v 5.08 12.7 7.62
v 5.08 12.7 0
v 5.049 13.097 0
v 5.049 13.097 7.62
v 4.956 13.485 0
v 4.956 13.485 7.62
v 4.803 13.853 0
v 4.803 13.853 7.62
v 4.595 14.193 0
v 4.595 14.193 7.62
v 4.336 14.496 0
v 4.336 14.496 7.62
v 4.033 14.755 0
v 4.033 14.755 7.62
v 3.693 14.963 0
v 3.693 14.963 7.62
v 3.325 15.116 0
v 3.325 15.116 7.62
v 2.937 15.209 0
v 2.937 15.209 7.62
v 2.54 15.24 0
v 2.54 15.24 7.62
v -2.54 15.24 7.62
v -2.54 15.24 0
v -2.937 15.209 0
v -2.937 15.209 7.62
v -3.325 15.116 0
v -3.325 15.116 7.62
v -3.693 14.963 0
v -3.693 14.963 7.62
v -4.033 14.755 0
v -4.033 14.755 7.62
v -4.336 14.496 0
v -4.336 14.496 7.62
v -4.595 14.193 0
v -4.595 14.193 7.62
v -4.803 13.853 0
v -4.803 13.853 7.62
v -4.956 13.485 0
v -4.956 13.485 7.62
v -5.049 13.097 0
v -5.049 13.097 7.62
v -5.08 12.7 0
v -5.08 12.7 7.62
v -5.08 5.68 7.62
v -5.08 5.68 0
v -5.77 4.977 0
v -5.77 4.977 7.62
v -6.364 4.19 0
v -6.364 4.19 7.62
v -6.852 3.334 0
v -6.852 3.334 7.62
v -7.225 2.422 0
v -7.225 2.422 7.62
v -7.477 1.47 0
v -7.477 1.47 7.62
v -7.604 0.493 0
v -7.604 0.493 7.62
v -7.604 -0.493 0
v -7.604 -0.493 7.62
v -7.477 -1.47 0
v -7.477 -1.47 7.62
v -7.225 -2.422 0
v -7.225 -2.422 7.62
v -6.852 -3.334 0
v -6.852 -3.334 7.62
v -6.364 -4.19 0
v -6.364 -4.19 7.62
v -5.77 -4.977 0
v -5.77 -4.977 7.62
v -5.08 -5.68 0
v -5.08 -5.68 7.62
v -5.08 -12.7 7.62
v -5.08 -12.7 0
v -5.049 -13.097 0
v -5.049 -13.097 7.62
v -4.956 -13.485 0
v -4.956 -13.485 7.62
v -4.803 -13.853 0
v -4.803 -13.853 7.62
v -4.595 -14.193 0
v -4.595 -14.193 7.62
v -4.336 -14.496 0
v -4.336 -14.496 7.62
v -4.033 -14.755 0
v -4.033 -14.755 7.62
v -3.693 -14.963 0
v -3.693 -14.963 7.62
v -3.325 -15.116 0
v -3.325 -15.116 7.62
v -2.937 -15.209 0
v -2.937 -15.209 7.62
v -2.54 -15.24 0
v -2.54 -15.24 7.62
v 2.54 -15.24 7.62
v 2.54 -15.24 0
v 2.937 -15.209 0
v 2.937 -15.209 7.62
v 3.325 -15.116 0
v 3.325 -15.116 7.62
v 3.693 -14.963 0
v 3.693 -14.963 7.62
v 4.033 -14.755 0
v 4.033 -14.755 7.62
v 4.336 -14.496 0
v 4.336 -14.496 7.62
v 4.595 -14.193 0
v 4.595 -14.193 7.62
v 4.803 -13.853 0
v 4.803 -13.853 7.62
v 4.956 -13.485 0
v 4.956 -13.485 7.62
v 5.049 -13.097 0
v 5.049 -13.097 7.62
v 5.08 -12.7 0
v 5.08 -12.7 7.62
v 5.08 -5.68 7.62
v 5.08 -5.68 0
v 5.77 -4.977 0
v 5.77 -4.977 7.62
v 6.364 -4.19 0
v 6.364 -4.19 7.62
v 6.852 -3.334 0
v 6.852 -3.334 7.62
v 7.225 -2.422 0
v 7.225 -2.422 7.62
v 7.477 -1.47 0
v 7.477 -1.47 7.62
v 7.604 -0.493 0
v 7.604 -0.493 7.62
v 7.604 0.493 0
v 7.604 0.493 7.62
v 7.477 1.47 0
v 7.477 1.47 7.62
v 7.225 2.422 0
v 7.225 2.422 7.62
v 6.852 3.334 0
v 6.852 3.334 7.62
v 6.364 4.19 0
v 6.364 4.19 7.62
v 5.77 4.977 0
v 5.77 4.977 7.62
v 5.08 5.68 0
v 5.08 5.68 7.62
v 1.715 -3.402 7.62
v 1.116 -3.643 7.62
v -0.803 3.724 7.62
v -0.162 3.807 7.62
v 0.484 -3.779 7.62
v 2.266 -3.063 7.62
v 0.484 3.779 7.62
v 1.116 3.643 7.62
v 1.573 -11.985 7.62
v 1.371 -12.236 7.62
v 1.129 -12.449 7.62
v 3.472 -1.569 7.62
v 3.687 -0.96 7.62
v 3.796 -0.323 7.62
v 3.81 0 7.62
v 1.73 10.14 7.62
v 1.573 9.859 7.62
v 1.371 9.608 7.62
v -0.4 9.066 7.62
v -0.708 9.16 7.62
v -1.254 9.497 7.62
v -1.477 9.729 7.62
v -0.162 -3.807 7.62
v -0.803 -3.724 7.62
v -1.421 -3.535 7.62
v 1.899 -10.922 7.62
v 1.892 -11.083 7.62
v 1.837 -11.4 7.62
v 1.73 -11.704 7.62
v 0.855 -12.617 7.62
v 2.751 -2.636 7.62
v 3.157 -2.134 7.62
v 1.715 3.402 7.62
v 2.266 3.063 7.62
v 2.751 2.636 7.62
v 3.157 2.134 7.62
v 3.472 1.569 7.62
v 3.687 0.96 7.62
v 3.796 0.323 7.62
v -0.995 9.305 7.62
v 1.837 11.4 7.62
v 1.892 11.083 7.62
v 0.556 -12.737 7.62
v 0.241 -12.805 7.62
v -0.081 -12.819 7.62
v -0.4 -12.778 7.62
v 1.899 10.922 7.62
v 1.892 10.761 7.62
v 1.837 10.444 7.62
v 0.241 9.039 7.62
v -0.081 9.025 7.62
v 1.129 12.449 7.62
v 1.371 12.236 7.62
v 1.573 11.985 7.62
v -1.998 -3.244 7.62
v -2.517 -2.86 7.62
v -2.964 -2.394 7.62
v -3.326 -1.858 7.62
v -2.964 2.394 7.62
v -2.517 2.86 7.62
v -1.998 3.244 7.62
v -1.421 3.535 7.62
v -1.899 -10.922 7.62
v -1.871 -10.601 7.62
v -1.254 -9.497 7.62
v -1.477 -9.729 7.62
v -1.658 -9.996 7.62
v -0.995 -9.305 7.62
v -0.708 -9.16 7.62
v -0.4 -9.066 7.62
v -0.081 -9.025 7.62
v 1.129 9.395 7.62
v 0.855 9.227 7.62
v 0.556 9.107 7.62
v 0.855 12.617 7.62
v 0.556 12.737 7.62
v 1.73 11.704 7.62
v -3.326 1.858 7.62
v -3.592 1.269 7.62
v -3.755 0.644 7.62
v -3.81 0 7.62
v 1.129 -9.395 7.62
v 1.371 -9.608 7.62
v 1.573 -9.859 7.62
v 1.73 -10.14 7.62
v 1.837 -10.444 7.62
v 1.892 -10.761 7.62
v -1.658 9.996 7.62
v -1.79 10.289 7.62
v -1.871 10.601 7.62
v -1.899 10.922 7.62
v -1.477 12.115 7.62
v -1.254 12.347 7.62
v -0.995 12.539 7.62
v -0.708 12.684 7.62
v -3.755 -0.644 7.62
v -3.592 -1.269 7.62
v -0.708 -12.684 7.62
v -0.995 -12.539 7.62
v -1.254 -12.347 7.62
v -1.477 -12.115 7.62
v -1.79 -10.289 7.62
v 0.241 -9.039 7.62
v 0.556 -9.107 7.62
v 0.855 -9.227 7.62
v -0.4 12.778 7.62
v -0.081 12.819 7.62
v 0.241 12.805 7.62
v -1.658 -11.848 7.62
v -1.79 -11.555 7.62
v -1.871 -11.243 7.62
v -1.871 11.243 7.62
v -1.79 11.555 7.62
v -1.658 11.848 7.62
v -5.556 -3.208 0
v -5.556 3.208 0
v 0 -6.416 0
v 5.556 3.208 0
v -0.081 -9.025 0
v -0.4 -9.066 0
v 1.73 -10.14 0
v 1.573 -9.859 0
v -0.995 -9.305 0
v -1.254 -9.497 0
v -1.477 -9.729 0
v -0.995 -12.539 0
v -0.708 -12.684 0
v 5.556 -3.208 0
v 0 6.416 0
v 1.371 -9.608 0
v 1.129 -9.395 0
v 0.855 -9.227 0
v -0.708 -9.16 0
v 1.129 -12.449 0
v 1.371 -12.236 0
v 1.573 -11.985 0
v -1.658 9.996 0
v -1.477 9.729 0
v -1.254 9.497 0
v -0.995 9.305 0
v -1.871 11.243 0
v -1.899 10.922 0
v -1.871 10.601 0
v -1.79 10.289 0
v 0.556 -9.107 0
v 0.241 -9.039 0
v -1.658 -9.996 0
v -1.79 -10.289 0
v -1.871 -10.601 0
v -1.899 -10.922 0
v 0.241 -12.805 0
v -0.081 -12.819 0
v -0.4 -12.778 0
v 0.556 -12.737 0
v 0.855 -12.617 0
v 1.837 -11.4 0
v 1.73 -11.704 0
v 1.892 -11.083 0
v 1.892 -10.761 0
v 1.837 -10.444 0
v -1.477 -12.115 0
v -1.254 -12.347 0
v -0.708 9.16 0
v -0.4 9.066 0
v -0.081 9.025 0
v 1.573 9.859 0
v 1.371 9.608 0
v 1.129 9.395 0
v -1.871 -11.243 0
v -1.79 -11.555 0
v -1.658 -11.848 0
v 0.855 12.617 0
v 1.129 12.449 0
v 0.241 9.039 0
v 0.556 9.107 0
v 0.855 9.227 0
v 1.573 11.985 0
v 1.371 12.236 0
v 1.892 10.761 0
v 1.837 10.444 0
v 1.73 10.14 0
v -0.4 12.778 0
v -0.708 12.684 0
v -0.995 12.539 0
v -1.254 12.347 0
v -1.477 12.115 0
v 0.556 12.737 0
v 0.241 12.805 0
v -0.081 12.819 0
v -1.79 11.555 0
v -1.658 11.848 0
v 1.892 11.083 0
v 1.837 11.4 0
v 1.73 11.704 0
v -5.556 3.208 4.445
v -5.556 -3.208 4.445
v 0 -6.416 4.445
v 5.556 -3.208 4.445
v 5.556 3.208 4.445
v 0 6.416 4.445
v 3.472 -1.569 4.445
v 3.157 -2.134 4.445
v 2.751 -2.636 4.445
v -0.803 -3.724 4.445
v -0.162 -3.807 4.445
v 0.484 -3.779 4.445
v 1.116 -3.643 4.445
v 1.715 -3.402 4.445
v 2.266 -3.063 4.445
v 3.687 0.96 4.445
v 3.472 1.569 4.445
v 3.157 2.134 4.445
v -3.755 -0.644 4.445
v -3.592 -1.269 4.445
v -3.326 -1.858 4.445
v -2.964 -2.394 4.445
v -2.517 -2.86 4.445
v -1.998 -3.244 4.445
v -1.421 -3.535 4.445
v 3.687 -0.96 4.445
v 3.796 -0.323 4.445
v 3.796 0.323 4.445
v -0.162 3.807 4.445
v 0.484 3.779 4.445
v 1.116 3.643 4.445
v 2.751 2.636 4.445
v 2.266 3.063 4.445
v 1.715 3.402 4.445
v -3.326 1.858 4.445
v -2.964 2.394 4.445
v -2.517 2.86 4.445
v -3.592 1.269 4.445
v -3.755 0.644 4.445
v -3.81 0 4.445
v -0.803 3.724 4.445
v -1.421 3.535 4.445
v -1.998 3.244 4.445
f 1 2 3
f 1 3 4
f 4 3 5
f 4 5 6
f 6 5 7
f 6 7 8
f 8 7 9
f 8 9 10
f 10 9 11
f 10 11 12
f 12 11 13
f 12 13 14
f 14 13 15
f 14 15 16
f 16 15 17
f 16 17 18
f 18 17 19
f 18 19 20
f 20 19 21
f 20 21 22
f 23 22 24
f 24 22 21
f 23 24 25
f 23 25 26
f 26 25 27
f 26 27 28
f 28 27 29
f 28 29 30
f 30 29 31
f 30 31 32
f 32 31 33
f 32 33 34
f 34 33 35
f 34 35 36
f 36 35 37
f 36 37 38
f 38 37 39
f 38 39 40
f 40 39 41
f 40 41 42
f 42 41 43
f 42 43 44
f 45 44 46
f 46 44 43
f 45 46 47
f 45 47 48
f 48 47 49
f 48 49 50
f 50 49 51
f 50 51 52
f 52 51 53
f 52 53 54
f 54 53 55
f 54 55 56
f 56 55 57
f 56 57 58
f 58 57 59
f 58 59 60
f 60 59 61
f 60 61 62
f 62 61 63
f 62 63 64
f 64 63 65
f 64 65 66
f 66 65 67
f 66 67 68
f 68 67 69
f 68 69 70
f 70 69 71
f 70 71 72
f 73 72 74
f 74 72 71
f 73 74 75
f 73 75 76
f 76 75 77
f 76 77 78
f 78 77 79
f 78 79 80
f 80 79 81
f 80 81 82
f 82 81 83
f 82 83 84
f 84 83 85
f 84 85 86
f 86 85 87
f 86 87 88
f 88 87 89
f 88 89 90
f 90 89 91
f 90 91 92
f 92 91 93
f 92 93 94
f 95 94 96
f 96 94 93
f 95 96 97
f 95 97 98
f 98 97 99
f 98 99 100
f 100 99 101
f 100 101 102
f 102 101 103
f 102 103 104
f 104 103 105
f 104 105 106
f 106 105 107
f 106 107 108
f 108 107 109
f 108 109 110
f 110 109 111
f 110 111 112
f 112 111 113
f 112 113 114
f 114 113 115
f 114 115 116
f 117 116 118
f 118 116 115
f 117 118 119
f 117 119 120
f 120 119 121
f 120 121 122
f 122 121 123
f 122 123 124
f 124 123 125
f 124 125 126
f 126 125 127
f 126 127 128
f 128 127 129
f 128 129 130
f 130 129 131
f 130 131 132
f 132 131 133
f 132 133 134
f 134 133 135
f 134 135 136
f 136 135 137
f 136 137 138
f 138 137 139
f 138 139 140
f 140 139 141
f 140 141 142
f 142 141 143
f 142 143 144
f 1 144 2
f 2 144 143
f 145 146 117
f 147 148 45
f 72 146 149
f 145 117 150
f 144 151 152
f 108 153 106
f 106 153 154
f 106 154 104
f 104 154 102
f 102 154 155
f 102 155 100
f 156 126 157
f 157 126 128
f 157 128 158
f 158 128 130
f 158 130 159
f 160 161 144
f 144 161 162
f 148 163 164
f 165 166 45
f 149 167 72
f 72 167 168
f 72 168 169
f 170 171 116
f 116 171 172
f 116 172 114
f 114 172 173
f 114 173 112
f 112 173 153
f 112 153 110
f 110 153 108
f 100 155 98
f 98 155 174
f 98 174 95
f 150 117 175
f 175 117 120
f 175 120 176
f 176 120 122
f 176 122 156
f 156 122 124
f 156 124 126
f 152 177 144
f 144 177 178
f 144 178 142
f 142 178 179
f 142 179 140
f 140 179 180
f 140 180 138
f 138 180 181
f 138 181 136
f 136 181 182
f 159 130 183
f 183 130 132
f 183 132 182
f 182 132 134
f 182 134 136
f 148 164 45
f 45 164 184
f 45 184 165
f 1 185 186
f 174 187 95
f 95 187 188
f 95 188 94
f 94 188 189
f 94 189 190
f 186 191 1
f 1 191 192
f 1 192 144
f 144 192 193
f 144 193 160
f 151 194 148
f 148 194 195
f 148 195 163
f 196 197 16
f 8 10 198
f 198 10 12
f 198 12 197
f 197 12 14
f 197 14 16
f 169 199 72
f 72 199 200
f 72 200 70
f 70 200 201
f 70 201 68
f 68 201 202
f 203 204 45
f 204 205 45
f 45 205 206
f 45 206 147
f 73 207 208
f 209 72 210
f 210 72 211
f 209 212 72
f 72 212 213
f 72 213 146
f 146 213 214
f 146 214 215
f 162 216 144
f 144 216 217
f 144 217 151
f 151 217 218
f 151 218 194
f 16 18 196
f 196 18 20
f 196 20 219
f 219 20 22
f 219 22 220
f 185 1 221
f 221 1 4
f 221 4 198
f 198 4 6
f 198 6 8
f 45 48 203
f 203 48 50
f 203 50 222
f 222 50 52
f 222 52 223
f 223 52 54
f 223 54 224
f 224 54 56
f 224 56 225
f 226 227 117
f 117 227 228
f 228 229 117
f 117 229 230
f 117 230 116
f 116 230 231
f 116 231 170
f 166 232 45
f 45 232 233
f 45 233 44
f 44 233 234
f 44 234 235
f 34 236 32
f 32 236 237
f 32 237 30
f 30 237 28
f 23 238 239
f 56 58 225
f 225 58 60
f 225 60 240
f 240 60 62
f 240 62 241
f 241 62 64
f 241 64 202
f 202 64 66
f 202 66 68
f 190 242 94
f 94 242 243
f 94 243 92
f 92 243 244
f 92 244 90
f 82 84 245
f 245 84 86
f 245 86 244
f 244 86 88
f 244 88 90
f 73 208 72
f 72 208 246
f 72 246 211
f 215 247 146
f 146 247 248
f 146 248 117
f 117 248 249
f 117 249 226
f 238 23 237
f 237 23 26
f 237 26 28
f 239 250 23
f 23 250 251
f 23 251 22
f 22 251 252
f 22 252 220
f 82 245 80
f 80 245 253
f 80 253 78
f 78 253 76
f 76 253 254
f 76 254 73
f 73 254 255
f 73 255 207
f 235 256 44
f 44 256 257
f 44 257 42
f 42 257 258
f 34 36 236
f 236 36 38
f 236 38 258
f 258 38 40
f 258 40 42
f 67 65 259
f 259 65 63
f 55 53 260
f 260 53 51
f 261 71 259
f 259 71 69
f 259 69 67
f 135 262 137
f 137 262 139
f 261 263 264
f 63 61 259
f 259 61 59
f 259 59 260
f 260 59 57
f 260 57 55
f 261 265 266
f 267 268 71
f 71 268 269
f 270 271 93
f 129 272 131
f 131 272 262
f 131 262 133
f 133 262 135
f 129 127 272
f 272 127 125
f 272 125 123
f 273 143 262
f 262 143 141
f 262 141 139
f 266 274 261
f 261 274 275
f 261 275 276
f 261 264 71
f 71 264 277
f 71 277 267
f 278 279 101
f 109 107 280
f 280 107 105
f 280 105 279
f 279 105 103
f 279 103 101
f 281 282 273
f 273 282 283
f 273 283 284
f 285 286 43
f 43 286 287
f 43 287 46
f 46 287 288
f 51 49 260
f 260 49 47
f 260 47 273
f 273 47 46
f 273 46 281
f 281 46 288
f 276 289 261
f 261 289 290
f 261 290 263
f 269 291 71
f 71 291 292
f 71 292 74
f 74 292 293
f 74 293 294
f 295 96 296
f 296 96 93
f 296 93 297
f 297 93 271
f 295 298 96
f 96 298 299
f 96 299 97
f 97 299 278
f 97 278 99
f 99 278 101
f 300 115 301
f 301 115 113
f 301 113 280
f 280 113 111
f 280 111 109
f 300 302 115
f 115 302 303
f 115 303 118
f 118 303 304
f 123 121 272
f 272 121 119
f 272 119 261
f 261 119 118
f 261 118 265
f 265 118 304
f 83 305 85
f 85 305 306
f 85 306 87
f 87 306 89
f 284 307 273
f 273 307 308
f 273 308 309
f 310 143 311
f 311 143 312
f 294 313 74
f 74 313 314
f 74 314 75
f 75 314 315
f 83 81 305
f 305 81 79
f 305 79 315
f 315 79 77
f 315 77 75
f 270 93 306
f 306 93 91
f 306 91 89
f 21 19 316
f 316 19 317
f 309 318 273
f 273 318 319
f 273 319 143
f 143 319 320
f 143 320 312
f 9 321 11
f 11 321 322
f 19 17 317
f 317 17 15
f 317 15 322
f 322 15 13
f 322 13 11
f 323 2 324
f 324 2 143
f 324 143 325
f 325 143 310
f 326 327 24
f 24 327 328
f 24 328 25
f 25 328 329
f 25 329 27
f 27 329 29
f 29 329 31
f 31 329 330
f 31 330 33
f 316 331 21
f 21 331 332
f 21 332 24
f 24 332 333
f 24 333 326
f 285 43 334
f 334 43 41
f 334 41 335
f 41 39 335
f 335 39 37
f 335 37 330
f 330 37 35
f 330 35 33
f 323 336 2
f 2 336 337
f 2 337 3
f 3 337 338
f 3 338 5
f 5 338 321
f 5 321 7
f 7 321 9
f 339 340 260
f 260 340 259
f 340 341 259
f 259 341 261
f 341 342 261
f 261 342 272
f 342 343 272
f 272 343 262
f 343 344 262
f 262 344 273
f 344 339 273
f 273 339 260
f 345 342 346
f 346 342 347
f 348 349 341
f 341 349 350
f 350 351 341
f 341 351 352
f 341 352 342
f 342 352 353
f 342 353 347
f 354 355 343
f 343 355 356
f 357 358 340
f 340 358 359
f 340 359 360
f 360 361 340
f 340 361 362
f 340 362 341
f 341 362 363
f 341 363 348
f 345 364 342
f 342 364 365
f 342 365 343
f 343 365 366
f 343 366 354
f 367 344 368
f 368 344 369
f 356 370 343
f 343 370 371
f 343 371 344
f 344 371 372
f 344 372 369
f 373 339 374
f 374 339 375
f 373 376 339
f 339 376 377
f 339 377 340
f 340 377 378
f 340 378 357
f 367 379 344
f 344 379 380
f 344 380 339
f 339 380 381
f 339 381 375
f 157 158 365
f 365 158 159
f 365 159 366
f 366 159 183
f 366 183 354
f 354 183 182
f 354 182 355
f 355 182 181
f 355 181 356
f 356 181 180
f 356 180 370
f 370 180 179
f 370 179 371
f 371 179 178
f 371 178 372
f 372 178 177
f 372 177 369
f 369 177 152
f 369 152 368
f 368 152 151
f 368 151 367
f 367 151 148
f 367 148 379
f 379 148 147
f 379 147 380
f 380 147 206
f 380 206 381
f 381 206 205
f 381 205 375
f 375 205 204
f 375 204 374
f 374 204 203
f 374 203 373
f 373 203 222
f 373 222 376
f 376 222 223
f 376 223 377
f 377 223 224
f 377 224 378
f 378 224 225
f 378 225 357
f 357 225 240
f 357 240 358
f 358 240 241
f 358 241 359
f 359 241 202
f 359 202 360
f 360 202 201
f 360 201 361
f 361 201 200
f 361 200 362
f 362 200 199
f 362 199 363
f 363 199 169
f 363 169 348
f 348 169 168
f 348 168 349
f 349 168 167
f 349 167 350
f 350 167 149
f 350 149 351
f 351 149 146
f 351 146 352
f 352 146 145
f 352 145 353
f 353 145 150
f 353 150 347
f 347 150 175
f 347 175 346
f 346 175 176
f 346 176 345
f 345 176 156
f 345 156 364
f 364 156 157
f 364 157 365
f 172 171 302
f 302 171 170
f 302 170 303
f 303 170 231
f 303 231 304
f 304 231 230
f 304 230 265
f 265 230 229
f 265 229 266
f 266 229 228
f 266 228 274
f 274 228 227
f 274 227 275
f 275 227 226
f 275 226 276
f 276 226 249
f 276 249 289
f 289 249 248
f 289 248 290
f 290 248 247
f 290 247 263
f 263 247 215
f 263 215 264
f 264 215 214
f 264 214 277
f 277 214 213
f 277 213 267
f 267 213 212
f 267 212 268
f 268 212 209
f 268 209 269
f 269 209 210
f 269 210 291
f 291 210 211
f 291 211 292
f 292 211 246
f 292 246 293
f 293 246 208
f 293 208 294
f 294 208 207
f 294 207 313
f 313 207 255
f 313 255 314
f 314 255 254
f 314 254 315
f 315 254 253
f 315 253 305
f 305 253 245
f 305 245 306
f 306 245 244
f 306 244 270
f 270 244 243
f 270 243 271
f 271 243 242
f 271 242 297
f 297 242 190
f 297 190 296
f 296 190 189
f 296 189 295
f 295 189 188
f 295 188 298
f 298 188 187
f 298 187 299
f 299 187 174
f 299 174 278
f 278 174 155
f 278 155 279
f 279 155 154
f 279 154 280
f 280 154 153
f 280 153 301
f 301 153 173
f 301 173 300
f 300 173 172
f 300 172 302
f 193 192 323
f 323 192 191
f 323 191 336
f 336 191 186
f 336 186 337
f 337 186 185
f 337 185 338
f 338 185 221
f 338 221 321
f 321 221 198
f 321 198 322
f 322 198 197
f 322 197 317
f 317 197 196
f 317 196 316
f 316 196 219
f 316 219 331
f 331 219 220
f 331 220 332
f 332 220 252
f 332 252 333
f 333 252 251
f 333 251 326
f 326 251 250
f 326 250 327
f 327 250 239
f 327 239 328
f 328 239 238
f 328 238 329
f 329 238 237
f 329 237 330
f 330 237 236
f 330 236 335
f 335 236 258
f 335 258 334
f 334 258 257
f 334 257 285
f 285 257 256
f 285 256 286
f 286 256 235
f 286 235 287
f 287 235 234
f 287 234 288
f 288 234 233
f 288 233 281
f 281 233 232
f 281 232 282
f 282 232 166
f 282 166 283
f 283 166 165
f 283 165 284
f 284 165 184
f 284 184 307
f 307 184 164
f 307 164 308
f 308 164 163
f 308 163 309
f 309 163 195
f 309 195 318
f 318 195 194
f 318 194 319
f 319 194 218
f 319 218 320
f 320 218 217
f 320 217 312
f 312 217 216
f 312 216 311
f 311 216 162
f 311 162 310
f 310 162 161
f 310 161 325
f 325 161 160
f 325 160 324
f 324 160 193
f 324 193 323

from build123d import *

# Parameters (mm, degrees)
EXTRUDE_1_DEPTH           = 7.62
CUT_EXTRUDE_1_DEPTH       = 4.445
SKETCH_3_R                = 3.81
CUT_EXTRUDE_2_DEPTH       = 6.096
F_6_CLEARANCE_HOLE1_D     = 3.7973
F_6_CLEARANCE_HOLE1_DEPTH = 25.4
F_6_CLEARANCE_HOLE1_TIP   = 1.140824014


with BuildPart() as part:
    # 草图1 → 凸台-拉伸1 (new body)
    with BuildSketch(Plane.XY):
        with BuildLine():
            Line((-5.08, 12.7), (-5.08, 5.679612663))
            ThreePointArc((-5.08, 5.679612663), (-7.62, 0), (-5.08, -5.679612663))
            Line((-5.08, -5.679612663), (-5.08, -12.7))
            ThreePointArc((-5.08, -12.7), (-4.336051224, -14.496051224), (-2.54, -15.24))
            Line((-2.54, -15.24), (2.54, -15.24))
            ThreePointArc((2.54, -15.24), (4.336051224, -14.496051224), (5.08, -12.7))
            Line((5.08, -12.7), (5.08, -5.679612663))
            ThreePointArc((5.08, -5.679612663), (7.62, 0), (5.08, 5.679612663))
            Line((5.08, 5.679612663), (5.08, 12.7))
            ThreePointArc((5.08, 12.7), (4.336051224, 14.496051224), (2.54, 15.24))
            Line((2.54, 15.24), (-2.54, 15.24))
            ThreePointArc((-2.54, 15.24), (-4.336051224, 14.496051224), (-5.08, 12.7))
        make_face()
    extrude(amount=EXTRUDE_1_DEPTH)

    # 草图2 → 切除-拉伸1 (cut)
    with BuildSketch(Plane(origin=(0, 0, 0), x_dir=(-1, 0, 0), z_dir=(0, 0, -1))):
        Polygon((5.55625, 3.207902433), (0, 6.415804866), (-5.55625, 3.207902433), (-5.55625, -3.207902433), (0, -6.415804866), (5.55625, -3.207902433), align=None)
    extrude(amount=-CUT_EXTRUDE_1_DEPTH, mode=Mode.SUBTRACT)

    # 草图3 → 切除-拉伸2 (cut)
    with BuildSketch(Plane(origin=(0, 0, 4.445), x_dir=(-1, 0, 0), z_dir=(0, 0, -1))):
        Circle(SKETCH_3_R)
    extrude(amount=-CUT_EXTRUDE_2_DEPTH, mode=Mode.SUBTRACT)

    # #6 Clearance Hole1
    with Locations(Plane(origin=(0, 0, 0), x_dir=(-1, 0, 0), z_dir=(0, 0, -1))):
        with Locations((0, 10.922), (0, -10.922)):
            Hole(F_6_CLEARANCE_HOLE1_D / 2, depth=F_6_CLEARANCE_HOLE1_DEPTH)
            with Locations((0, 0, -(F_6_CLEARANCE_HOLE1_DEPTH + F_6_CLEARANCE_HOLE1_TIP / 2))):  # 118° drill point
                Cone(0, F_6_CLEARANCE_HOLE1_D / 2, F_6_CLEARANCE_HOLE1_TIP, mode=Mode.SUBTRACT)


solid = part.part
